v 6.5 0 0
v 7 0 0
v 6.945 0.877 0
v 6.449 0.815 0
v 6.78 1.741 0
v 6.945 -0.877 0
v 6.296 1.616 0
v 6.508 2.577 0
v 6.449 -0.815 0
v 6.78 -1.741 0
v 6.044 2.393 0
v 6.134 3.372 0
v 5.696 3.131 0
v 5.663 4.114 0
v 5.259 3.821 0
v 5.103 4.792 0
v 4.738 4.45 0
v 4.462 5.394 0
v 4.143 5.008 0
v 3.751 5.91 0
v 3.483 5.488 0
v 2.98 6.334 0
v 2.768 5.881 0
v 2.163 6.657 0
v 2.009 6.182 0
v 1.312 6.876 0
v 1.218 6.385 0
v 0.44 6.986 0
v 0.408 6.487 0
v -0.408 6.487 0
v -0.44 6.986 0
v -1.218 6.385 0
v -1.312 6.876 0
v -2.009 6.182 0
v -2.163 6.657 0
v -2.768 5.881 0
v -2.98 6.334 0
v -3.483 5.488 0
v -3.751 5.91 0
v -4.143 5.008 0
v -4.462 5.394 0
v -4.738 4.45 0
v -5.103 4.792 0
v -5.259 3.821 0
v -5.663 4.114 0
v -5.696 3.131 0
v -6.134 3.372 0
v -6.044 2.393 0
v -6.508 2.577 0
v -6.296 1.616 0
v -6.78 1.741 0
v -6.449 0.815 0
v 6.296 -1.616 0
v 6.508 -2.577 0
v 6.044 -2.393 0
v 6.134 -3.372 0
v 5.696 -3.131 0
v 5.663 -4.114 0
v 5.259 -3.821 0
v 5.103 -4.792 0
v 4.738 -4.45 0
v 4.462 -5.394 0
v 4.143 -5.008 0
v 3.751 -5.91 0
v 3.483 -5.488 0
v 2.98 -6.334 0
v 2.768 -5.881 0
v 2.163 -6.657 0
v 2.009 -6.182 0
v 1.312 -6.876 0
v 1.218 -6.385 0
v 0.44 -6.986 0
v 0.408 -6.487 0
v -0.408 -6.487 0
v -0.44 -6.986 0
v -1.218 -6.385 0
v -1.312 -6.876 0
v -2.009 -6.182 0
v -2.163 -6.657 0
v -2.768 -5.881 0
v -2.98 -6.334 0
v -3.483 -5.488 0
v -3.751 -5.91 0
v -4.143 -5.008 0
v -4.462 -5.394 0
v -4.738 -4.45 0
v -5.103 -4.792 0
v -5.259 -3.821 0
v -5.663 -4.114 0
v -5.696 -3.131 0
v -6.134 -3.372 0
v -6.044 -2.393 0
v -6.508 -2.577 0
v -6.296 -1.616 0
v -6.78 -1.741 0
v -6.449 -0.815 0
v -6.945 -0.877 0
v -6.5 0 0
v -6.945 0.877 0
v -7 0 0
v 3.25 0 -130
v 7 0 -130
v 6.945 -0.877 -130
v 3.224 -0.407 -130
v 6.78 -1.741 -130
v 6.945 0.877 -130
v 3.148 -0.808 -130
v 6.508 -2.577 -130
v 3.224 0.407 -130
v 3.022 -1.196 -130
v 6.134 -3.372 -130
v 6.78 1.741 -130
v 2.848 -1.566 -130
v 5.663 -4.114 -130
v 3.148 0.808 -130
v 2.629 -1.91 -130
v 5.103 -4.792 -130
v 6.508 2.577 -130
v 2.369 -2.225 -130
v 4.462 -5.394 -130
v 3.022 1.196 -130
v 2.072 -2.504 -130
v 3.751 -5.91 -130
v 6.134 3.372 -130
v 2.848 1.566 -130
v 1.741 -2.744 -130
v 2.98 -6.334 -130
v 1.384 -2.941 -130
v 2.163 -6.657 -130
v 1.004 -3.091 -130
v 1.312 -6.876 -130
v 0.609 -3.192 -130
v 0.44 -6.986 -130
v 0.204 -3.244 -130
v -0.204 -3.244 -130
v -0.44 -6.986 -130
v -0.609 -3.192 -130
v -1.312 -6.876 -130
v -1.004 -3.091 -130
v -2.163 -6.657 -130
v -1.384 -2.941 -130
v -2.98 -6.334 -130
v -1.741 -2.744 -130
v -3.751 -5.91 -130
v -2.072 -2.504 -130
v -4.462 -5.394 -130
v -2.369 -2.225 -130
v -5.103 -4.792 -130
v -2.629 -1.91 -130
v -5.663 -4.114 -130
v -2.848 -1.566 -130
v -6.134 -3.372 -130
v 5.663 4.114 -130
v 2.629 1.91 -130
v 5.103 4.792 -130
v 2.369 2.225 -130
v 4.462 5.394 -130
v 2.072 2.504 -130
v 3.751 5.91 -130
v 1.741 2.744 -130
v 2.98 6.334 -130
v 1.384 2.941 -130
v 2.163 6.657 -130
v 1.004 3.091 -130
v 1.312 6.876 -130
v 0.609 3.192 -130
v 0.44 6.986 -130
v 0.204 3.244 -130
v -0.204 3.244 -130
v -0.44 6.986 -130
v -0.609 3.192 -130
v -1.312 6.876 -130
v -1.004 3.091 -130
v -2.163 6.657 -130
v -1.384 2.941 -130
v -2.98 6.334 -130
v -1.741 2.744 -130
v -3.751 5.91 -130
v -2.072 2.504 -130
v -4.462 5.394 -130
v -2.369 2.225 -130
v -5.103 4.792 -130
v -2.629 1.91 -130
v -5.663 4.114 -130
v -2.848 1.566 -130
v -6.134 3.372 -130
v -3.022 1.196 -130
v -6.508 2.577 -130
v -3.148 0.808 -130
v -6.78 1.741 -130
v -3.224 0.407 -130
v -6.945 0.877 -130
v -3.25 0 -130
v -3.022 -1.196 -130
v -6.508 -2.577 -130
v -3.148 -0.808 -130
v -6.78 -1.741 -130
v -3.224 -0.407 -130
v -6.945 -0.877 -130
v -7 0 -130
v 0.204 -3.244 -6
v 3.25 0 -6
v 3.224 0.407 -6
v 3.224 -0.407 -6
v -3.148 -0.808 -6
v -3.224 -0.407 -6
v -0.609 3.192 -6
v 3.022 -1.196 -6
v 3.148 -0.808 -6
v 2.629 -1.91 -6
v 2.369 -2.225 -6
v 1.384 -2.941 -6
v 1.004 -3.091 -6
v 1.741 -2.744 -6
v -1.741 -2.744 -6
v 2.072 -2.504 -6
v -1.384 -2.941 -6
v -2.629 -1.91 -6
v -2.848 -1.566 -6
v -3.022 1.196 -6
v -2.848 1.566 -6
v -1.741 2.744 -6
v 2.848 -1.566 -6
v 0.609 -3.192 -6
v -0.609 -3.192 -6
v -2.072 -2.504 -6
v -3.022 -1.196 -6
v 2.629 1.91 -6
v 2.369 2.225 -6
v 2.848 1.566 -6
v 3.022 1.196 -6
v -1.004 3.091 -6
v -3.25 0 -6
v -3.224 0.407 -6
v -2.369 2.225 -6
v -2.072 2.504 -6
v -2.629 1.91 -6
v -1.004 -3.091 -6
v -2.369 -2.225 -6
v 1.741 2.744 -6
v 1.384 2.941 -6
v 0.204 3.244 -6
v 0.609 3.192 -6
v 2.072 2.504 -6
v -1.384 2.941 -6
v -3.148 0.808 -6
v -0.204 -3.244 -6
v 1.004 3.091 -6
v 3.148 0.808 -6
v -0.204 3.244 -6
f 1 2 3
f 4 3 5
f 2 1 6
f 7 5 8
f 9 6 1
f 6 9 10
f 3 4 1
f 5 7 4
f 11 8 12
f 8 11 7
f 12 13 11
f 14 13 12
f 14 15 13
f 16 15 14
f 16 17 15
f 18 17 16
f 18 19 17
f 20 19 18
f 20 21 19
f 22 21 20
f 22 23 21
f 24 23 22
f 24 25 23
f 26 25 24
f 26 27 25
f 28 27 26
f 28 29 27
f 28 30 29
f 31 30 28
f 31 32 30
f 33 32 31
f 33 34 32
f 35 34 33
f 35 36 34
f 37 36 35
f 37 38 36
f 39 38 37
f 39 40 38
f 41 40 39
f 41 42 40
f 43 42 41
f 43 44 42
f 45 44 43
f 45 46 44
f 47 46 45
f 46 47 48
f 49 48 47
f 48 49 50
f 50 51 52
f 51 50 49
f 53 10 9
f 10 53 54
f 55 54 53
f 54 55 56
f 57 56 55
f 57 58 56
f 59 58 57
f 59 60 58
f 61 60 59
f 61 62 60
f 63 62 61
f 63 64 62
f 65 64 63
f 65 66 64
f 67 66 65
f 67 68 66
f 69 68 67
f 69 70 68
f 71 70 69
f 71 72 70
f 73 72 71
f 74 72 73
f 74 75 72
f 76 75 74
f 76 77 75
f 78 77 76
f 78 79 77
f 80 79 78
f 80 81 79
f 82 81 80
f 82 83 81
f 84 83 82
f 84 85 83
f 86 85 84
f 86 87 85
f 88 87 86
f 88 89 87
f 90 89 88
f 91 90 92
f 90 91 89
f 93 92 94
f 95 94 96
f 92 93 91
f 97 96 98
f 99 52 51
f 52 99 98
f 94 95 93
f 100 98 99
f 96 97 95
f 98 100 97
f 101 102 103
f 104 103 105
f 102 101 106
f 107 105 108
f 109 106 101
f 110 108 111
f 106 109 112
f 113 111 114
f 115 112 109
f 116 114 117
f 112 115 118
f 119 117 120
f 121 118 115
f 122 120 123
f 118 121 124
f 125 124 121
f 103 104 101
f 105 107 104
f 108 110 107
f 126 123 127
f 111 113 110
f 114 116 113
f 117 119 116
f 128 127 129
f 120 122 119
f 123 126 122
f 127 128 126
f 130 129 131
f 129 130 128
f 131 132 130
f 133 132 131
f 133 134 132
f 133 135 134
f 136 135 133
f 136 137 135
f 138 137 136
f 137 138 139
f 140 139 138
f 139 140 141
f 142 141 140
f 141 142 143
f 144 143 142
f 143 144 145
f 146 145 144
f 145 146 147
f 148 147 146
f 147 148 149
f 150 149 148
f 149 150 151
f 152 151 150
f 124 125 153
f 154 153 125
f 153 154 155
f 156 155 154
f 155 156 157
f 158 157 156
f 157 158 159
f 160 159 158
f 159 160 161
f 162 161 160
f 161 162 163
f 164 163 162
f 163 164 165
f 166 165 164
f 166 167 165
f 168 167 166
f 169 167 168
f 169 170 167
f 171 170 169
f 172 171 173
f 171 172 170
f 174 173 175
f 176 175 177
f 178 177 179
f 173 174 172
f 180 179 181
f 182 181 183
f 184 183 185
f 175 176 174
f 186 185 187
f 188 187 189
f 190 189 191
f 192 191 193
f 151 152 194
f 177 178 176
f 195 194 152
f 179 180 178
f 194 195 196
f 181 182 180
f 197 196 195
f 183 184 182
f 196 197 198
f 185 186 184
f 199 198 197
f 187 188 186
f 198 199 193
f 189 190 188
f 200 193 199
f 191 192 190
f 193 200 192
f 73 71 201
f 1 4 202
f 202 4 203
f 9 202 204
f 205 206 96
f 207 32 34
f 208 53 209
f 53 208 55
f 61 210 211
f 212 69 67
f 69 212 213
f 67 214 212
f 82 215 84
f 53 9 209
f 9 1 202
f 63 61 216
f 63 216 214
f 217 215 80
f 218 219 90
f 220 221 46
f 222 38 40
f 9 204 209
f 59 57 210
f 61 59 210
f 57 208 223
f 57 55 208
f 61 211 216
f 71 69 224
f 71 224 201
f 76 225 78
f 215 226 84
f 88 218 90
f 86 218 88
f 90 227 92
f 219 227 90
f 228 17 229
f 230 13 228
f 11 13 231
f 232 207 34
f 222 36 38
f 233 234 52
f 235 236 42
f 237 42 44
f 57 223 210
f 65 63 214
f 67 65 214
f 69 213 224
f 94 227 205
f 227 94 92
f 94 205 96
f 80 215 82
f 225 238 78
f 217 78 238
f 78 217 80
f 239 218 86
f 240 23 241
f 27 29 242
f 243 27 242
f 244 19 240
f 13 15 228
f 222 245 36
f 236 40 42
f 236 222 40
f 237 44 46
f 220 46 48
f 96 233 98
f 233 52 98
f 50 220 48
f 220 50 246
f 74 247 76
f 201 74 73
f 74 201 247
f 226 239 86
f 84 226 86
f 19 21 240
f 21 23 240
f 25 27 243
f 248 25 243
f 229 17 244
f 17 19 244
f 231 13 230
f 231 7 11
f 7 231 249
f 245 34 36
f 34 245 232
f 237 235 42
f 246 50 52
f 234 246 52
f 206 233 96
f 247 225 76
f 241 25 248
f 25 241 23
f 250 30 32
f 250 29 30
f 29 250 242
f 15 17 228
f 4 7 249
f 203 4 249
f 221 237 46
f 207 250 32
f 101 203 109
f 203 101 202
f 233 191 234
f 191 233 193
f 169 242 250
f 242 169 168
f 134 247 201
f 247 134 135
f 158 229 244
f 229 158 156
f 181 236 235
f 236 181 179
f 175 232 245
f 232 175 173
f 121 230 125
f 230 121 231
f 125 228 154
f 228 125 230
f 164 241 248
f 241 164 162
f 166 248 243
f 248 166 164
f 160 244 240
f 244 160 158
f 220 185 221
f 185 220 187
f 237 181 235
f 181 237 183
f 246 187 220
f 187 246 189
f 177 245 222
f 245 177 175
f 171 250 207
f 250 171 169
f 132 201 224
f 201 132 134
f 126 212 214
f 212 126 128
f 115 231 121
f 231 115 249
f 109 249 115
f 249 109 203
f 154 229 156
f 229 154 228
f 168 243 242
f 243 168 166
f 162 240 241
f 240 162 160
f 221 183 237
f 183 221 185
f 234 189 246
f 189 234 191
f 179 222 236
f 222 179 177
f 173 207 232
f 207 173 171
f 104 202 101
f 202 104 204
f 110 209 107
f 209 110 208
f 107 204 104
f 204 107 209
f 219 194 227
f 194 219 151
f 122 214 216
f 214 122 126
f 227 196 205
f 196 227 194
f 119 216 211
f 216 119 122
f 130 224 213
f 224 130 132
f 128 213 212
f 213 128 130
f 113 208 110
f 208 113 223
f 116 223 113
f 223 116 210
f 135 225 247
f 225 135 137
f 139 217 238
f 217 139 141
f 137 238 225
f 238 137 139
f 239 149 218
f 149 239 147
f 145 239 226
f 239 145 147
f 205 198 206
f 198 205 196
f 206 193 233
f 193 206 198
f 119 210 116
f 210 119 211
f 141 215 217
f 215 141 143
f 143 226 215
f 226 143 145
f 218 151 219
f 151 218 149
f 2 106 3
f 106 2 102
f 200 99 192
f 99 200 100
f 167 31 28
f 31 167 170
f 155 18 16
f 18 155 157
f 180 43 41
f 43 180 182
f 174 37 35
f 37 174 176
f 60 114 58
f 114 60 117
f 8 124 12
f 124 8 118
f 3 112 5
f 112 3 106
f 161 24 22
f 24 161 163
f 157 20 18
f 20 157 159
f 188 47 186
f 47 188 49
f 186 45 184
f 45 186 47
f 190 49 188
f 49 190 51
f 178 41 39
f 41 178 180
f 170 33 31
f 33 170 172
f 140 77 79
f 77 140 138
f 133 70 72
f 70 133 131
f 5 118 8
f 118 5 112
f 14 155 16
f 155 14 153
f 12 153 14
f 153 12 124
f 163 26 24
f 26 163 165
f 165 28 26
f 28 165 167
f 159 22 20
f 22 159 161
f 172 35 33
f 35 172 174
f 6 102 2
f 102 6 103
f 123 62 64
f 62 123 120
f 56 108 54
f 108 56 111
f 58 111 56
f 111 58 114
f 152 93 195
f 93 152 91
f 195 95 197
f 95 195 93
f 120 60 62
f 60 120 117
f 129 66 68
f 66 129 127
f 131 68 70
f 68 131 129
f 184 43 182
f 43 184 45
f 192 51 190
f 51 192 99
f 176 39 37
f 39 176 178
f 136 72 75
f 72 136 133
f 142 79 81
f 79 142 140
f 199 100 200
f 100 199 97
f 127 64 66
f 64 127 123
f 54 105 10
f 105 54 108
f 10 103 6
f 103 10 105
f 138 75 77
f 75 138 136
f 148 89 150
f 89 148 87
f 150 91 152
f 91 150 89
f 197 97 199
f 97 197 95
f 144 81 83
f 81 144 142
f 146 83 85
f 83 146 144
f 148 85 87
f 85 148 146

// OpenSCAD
$fn = 50;


difference() {
	union() {
		translate(v = [0, 0, -130.0000000000]) {
			cylinder(h = 130, r = 7.0000000000);
		}
		cylinder(h = 0, r = 10.0000000000);
	}
	union() {
		translate(v = [0, 0, 0]) {
			rotate(a = [0, 0, 0]) {
				difference() {
					union() {
						#translate(v = [0, 0, -130.0000000000]) {
							cylinder(h = 130, r = 2.2500000000);
						}
						#translate(v = [0, 0, -6]) {
							cylinder(h = 6, r = 7.0000000000, r1 = 3.2500000000, r2 = 6.5000000000);
						}
						#translate(v = [0, 0, -130.0000000000]) {
							cylinder(h = 130, r = 3.2500000000);
						}
						#translate(v = [0, 0, -130.0000000000]) {
							cylinder(h = 130, r = 2.2500000000);
						}
					}
					union();
				}
			}
		}
	}
}
